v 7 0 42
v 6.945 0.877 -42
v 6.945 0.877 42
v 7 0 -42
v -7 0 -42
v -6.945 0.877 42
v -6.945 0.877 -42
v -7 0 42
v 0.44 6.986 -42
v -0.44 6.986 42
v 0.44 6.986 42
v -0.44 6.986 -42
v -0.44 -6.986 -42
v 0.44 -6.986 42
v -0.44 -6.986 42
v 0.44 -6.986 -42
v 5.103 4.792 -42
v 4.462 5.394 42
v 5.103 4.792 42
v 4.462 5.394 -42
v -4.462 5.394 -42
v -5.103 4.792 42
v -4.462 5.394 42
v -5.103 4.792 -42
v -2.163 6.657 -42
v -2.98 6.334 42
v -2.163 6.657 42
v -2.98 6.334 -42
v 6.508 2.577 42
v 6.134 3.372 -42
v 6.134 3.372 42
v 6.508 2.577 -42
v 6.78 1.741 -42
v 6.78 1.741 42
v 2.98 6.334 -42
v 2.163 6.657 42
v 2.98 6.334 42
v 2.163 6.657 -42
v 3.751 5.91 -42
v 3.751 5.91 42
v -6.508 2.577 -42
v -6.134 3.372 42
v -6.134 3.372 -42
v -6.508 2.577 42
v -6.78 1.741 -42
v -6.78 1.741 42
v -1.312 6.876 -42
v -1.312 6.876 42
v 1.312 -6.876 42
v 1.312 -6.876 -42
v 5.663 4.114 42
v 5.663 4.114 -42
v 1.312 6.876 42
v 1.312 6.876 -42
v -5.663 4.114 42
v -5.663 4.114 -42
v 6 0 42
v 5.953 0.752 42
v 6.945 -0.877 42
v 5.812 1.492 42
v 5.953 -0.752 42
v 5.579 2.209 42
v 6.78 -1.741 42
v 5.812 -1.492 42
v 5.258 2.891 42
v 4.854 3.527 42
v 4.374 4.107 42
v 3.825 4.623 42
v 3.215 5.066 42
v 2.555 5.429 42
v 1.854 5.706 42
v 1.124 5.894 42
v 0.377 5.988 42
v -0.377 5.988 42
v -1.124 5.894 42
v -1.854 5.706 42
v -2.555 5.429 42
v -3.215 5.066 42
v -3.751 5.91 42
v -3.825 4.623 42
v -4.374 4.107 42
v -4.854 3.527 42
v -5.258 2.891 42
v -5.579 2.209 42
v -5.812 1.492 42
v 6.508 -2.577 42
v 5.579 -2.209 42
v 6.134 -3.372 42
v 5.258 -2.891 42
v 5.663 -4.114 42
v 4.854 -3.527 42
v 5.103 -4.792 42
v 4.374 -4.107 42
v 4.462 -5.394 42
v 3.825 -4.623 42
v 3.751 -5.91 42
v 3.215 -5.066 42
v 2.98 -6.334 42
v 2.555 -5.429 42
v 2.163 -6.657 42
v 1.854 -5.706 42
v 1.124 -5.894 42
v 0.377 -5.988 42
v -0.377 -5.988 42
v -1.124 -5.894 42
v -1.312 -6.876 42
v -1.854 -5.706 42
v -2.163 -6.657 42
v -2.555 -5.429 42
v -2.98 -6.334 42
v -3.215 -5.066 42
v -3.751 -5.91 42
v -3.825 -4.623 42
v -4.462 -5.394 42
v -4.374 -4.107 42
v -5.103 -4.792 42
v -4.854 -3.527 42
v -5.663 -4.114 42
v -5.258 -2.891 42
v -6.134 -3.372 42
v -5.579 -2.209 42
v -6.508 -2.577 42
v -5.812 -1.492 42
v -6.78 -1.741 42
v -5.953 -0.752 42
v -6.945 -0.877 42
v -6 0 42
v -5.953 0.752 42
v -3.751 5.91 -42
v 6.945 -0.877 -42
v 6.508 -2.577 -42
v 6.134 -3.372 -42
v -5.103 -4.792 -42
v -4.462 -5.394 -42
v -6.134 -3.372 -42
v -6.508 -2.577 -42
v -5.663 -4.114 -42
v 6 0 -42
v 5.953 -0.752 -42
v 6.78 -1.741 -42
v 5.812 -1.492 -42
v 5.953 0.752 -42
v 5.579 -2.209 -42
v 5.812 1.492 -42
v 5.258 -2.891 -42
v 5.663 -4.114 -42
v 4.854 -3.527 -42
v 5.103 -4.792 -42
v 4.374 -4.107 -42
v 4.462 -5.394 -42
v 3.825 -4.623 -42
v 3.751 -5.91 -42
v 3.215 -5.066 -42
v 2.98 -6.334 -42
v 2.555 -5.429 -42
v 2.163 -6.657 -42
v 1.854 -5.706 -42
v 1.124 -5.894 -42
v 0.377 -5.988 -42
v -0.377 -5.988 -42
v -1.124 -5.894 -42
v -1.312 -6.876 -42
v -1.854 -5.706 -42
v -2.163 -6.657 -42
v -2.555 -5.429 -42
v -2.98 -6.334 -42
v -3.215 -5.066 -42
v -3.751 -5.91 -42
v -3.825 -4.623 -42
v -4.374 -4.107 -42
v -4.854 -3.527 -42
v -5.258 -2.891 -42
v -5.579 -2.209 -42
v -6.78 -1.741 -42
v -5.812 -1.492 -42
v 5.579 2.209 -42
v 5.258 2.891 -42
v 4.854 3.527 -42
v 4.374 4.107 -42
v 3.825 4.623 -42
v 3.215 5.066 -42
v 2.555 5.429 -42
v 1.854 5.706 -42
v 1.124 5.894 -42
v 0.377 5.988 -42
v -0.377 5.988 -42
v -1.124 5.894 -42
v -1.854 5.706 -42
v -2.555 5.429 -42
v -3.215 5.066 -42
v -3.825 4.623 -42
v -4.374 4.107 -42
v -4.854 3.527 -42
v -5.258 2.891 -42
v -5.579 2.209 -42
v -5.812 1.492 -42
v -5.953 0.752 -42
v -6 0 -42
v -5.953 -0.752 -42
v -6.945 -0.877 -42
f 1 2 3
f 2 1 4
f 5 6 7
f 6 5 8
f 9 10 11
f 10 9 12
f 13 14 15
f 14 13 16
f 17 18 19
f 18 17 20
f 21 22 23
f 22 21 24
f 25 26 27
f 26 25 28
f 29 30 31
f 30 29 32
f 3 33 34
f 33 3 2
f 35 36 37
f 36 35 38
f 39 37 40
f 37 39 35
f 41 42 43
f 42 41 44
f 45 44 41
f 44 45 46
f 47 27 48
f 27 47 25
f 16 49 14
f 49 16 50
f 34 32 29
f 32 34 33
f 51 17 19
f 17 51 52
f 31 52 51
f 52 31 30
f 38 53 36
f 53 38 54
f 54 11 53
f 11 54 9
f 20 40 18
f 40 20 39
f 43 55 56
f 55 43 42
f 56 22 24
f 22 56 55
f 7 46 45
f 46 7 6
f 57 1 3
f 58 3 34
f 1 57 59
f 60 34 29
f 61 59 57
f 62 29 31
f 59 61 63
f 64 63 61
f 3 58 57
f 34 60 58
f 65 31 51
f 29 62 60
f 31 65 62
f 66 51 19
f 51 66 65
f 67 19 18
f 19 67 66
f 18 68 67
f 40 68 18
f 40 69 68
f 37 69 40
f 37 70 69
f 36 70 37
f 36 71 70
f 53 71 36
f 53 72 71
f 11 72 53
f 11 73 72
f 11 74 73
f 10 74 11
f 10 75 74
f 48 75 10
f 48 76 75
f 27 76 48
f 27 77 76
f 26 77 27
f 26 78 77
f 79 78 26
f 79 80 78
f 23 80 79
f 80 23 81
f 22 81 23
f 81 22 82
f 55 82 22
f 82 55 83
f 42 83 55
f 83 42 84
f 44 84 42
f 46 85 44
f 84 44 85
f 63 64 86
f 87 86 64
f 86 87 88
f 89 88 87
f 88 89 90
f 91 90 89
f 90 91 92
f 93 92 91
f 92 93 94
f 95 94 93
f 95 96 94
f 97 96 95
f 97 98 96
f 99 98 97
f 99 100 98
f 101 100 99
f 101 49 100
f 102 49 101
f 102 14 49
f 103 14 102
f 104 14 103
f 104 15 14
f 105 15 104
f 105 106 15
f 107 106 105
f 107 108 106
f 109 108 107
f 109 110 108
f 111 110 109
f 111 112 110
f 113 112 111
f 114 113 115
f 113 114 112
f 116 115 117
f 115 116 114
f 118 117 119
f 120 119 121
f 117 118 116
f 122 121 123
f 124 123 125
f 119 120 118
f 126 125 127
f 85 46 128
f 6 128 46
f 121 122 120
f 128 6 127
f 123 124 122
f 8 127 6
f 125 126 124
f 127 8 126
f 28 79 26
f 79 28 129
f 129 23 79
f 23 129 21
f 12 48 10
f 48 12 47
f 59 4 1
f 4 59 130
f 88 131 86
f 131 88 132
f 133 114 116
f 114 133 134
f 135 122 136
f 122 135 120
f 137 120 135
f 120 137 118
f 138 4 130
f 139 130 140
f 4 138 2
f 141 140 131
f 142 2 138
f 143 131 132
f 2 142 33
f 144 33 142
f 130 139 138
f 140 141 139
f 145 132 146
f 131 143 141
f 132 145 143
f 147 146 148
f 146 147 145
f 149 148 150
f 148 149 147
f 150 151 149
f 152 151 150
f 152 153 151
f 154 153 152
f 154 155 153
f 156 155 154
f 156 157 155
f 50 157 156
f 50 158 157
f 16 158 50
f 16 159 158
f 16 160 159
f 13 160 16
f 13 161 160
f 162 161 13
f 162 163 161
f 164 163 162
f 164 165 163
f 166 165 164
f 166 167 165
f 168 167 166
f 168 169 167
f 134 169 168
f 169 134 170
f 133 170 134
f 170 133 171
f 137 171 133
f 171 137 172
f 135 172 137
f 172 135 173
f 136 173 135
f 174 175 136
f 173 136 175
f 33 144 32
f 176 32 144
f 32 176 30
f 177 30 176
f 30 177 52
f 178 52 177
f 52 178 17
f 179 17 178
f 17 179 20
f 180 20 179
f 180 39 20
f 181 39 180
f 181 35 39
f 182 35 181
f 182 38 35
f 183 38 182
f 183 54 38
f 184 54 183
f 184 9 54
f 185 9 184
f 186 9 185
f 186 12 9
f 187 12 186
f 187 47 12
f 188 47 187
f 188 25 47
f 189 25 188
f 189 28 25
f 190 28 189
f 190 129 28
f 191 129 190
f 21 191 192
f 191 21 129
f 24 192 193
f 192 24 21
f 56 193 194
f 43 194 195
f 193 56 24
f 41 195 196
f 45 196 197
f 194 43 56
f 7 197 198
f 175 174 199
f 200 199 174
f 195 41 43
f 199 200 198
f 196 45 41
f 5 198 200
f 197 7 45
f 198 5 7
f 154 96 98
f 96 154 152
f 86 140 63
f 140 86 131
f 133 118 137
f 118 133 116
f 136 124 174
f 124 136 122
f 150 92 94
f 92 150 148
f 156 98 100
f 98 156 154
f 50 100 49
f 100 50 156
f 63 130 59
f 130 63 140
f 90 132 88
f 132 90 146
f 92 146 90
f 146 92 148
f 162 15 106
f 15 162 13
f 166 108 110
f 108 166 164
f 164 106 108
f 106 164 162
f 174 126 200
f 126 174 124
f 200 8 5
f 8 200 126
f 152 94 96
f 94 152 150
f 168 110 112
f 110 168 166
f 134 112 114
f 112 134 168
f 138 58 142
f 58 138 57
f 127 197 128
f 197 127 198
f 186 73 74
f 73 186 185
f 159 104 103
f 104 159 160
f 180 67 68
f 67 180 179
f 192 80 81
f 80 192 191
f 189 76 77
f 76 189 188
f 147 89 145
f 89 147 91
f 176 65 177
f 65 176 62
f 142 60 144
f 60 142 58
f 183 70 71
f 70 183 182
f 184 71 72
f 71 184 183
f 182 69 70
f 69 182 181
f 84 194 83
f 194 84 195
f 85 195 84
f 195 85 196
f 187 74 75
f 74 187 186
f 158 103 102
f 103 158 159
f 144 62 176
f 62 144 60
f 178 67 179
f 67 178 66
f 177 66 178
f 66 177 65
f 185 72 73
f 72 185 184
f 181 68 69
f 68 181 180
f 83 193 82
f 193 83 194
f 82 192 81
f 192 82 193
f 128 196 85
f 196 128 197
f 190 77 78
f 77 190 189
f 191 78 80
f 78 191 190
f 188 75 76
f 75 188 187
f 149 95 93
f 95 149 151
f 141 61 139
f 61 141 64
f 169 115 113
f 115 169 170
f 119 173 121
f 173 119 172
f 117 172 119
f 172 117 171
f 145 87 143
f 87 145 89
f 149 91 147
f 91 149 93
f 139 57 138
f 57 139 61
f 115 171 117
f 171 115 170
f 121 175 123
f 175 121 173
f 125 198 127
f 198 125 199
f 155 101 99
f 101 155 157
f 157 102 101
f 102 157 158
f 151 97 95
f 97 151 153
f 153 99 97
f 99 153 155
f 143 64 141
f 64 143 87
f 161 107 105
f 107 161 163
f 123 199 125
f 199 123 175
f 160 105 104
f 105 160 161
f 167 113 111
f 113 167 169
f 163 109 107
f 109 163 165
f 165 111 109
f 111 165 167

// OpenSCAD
$fn = 50;


difference() {
	union() {
		translate(v = [0, 0, -42.0000000000]) {
			cylinder(h = 84, r = 7.0000000000);
		}
	}
	union() {
		translate(v = [0, 0, -100.0000000000]) {
			cylinder(h = 200, r = 6);
		}
	}
}
